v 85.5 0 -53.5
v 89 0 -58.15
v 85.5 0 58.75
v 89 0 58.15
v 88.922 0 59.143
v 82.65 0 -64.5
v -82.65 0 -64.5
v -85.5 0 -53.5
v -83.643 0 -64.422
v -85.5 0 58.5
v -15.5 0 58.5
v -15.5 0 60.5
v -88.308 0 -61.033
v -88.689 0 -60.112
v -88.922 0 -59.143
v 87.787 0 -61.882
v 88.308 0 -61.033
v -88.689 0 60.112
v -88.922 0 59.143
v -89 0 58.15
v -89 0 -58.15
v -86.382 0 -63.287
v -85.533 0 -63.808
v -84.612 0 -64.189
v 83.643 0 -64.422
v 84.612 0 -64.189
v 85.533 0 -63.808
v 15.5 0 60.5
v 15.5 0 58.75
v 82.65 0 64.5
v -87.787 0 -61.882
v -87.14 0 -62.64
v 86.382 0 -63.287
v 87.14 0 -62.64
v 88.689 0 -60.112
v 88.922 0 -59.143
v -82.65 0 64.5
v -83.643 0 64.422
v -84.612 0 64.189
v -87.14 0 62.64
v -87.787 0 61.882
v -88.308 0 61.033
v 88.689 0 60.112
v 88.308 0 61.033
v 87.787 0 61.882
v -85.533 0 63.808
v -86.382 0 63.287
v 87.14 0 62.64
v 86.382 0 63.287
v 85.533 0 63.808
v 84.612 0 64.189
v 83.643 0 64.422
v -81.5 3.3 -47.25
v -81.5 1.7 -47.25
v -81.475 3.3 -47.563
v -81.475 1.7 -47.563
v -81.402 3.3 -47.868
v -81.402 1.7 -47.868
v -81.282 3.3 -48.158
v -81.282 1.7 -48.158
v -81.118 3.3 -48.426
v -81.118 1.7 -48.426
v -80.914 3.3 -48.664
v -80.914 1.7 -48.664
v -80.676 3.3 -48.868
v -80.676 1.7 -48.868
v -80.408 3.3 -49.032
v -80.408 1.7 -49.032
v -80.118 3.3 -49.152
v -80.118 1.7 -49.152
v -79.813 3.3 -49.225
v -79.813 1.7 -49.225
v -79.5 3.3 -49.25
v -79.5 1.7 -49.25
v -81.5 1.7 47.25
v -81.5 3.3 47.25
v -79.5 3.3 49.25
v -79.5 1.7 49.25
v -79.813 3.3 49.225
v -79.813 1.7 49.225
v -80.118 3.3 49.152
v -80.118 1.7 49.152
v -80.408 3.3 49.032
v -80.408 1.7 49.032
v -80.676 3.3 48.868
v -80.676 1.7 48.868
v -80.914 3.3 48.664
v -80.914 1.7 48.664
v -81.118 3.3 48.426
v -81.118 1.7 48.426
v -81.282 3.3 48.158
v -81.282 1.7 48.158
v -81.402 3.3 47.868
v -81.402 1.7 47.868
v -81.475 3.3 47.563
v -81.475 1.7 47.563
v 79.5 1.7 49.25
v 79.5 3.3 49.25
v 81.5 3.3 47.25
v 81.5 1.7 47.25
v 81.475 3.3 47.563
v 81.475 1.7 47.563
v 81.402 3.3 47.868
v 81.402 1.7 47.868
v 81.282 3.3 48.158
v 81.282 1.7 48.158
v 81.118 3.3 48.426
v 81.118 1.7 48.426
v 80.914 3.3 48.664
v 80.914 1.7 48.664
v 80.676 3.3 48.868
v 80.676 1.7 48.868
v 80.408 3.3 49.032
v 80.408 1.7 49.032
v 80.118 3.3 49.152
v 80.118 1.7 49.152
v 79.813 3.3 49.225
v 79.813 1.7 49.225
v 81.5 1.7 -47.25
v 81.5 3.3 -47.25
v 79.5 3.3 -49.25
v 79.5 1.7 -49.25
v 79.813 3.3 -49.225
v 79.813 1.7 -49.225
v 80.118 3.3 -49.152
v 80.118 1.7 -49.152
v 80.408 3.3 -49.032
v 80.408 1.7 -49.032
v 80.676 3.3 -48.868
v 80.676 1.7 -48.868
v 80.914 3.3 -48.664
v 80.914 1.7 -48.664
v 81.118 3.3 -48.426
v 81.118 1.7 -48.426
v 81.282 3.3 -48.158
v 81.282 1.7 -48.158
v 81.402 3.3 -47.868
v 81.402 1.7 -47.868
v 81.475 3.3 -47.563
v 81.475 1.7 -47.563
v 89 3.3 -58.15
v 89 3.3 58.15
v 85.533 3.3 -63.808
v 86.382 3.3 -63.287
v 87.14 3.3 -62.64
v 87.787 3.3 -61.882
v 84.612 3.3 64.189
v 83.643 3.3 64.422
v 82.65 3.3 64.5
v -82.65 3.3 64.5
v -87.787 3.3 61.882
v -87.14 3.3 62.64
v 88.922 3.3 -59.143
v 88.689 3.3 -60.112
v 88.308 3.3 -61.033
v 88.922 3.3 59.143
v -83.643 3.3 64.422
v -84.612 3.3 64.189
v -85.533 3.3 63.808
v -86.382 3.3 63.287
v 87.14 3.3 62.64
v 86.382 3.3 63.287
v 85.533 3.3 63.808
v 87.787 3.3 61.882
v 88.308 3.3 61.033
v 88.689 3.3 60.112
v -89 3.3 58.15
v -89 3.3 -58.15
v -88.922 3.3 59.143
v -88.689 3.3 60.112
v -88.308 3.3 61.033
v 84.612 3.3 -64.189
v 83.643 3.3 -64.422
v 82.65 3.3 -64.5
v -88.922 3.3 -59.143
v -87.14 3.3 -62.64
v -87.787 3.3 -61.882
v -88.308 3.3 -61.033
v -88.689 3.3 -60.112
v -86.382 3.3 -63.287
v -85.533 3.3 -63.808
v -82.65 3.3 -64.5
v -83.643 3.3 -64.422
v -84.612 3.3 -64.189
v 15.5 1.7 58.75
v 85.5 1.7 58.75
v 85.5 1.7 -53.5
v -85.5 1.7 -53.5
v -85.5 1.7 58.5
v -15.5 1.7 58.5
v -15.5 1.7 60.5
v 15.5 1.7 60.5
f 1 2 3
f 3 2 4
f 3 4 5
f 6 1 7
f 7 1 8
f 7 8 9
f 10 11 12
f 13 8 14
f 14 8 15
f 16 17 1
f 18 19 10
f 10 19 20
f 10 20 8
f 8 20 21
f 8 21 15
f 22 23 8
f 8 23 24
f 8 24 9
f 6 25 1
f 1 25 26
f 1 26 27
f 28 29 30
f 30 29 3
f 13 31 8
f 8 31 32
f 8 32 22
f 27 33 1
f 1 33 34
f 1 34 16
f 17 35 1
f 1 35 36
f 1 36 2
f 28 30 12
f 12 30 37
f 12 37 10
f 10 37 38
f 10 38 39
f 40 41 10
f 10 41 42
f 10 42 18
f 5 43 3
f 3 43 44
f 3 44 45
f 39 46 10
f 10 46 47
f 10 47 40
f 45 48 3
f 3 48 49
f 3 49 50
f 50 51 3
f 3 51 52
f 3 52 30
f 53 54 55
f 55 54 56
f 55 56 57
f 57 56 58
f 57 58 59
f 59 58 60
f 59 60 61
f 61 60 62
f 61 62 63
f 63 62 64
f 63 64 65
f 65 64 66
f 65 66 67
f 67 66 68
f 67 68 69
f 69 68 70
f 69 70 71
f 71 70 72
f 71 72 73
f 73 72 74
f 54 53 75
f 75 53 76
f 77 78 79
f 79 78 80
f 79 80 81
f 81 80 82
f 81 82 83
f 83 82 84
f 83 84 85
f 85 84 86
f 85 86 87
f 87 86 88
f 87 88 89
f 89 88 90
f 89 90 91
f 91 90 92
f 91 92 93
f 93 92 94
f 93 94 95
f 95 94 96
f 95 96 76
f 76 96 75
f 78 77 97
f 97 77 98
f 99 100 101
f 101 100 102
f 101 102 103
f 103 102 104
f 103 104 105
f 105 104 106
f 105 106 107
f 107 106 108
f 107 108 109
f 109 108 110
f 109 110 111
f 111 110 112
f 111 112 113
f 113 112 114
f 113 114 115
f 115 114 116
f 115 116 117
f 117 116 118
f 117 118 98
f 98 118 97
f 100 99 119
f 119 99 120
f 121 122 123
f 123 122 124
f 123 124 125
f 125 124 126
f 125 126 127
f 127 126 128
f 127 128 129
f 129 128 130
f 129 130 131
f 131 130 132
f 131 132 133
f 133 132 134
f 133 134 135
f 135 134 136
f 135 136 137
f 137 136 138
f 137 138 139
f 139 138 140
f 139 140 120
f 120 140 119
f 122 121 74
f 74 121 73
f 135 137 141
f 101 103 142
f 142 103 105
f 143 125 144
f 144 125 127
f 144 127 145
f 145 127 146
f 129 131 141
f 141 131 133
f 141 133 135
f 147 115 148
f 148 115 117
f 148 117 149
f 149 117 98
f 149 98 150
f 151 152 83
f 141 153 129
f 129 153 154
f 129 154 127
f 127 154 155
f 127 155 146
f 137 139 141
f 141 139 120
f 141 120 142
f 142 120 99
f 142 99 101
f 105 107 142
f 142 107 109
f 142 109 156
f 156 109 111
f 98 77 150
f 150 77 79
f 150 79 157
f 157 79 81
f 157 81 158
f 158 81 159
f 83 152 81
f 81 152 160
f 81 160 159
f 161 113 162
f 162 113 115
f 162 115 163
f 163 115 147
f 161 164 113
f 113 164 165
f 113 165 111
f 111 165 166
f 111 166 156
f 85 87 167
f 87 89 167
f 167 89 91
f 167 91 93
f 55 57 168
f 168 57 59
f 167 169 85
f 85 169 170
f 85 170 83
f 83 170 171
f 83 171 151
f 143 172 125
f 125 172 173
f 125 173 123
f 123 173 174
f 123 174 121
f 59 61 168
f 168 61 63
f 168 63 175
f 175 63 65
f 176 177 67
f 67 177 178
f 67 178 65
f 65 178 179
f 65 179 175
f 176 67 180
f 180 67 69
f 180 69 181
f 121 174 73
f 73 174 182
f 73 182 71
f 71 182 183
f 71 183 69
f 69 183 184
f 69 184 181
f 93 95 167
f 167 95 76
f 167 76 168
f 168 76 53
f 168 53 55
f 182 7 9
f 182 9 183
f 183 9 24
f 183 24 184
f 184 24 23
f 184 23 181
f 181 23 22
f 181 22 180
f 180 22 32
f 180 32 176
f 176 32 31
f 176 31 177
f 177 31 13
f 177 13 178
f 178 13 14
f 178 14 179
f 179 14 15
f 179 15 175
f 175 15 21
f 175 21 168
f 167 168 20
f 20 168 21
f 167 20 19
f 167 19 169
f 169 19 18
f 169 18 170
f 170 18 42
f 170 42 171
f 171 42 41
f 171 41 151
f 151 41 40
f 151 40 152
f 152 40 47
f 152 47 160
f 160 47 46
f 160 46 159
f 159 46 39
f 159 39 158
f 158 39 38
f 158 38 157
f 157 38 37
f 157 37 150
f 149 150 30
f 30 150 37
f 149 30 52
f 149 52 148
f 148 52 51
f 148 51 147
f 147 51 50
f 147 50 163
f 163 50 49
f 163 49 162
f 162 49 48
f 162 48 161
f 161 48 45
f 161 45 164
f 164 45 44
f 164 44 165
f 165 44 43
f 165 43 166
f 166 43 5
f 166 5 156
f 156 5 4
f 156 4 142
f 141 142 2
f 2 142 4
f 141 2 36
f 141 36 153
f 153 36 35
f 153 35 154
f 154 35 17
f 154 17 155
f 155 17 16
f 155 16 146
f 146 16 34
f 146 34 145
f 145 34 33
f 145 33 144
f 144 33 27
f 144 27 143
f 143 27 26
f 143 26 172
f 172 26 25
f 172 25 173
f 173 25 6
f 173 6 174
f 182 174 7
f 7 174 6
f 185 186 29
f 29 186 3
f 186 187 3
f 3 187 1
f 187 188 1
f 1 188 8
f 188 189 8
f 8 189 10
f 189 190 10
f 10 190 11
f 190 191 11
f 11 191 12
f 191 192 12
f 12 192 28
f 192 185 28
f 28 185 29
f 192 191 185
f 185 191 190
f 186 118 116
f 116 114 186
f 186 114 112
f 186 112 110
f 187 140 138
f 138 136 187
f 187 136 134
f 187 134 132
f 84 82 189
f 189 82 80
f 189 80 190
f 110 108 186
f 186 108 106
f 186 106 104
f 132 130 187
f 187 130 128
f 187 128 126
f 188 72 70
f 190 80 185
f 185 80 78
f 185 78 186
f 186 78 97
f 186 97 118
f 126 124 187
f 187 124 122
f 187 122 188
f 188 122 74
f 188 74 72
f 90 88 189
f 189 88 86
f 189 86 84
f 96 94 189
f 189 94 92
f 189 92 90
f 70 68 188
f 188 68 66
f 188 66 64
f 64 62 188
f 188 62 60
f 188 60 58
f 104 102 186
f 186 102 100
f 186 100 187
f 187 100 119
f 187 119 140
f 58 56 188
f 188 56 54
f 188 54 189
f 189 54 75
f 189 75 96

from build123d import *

# Parameters (mm, degrees)
OUTSIDE_EXTRUDE_DEPTH = 3.3
CUT_EXTRUDE4_DEPTH    = 1.7


with BuildPart() as part:
    # Sketch1 → Outside-extrude (new body)
    with BuildSketch(Plane(origin=(0, 0, 0), x_dir=(1, 0, 0), z_dir=(0, 1, 0))):
        with BuildLine():
            Line((-82.65, 64.5), (82.65, 64.5))
            ThreePointArc((82.65, 64.5), (87.140128061, 62.640128061), (89, 58.15))
            Line((89, 58.15), (89, -58.15))
            ThreePointArc((89, -58.15), (87.140128061, -62.640128061), (82.65, -64.5))
            Line((82.65, -64.5), (-82.65, -64.5))
            ThreePointArc((-82.65, -64.5), (-87.140128061, -62.640128061), (-89, -58.15))
            Line((-89, -58.15), (-89, 58.15))
            ThreePointArc((-89, 58.15), (-87.140128061, 62.640128061), (-82.65, 64.5))
        make_face()
        with BuildLine():
            Line((-79.5, 49.25), (79.5, 49.25))
            ThreePointArc((79.5, 49.25), (80.914213562, 48.664213562), (81.5, 47.25))
            Line((81.5, 47.25), (81.5, -47.25))
            ThreePointArc((81.5, -47.25), (80.914213562, -48.664213562), (79.5, -49.25))
            Line((79.5, -49.25), (-79.5, -49.25))
            ThreePointArc((-79.5, -49.25), (-80.914213562, -48.664213562), (-81.5, -47.25))
            Line((-81.5, -47.25), (-81.5, 47.25))
            ThreePointArc((-81.5, 47.25), (-80.914213562, 48.664213562), (-79.5, 49.25))
        make_face(mode=Mode.SUBTRACT)
    extrude(amount=OUTSIDE_EXTRUDE_DEPTH)

    # Sketch2 → Cut-Extrude4 (cut)
    with BuildSketch(Plane(origin=(0, 0, 0), x_dir=(1, 0, 0), z_dir=(0, 1, 0))):
        Polygon((-15.5, -58.5), (-15.5, -60.5), (15.5, -60.5), (15.5, -58.75), (85.5, -58.75), (85.5, 53.5), (-85.5, 53.5), (-85.5, -58.5), align=None)
    extrude(amount=CUT_EXTRUDE4_DEPTH, mode=Mode.SUBTRACT)


solid = part.part
